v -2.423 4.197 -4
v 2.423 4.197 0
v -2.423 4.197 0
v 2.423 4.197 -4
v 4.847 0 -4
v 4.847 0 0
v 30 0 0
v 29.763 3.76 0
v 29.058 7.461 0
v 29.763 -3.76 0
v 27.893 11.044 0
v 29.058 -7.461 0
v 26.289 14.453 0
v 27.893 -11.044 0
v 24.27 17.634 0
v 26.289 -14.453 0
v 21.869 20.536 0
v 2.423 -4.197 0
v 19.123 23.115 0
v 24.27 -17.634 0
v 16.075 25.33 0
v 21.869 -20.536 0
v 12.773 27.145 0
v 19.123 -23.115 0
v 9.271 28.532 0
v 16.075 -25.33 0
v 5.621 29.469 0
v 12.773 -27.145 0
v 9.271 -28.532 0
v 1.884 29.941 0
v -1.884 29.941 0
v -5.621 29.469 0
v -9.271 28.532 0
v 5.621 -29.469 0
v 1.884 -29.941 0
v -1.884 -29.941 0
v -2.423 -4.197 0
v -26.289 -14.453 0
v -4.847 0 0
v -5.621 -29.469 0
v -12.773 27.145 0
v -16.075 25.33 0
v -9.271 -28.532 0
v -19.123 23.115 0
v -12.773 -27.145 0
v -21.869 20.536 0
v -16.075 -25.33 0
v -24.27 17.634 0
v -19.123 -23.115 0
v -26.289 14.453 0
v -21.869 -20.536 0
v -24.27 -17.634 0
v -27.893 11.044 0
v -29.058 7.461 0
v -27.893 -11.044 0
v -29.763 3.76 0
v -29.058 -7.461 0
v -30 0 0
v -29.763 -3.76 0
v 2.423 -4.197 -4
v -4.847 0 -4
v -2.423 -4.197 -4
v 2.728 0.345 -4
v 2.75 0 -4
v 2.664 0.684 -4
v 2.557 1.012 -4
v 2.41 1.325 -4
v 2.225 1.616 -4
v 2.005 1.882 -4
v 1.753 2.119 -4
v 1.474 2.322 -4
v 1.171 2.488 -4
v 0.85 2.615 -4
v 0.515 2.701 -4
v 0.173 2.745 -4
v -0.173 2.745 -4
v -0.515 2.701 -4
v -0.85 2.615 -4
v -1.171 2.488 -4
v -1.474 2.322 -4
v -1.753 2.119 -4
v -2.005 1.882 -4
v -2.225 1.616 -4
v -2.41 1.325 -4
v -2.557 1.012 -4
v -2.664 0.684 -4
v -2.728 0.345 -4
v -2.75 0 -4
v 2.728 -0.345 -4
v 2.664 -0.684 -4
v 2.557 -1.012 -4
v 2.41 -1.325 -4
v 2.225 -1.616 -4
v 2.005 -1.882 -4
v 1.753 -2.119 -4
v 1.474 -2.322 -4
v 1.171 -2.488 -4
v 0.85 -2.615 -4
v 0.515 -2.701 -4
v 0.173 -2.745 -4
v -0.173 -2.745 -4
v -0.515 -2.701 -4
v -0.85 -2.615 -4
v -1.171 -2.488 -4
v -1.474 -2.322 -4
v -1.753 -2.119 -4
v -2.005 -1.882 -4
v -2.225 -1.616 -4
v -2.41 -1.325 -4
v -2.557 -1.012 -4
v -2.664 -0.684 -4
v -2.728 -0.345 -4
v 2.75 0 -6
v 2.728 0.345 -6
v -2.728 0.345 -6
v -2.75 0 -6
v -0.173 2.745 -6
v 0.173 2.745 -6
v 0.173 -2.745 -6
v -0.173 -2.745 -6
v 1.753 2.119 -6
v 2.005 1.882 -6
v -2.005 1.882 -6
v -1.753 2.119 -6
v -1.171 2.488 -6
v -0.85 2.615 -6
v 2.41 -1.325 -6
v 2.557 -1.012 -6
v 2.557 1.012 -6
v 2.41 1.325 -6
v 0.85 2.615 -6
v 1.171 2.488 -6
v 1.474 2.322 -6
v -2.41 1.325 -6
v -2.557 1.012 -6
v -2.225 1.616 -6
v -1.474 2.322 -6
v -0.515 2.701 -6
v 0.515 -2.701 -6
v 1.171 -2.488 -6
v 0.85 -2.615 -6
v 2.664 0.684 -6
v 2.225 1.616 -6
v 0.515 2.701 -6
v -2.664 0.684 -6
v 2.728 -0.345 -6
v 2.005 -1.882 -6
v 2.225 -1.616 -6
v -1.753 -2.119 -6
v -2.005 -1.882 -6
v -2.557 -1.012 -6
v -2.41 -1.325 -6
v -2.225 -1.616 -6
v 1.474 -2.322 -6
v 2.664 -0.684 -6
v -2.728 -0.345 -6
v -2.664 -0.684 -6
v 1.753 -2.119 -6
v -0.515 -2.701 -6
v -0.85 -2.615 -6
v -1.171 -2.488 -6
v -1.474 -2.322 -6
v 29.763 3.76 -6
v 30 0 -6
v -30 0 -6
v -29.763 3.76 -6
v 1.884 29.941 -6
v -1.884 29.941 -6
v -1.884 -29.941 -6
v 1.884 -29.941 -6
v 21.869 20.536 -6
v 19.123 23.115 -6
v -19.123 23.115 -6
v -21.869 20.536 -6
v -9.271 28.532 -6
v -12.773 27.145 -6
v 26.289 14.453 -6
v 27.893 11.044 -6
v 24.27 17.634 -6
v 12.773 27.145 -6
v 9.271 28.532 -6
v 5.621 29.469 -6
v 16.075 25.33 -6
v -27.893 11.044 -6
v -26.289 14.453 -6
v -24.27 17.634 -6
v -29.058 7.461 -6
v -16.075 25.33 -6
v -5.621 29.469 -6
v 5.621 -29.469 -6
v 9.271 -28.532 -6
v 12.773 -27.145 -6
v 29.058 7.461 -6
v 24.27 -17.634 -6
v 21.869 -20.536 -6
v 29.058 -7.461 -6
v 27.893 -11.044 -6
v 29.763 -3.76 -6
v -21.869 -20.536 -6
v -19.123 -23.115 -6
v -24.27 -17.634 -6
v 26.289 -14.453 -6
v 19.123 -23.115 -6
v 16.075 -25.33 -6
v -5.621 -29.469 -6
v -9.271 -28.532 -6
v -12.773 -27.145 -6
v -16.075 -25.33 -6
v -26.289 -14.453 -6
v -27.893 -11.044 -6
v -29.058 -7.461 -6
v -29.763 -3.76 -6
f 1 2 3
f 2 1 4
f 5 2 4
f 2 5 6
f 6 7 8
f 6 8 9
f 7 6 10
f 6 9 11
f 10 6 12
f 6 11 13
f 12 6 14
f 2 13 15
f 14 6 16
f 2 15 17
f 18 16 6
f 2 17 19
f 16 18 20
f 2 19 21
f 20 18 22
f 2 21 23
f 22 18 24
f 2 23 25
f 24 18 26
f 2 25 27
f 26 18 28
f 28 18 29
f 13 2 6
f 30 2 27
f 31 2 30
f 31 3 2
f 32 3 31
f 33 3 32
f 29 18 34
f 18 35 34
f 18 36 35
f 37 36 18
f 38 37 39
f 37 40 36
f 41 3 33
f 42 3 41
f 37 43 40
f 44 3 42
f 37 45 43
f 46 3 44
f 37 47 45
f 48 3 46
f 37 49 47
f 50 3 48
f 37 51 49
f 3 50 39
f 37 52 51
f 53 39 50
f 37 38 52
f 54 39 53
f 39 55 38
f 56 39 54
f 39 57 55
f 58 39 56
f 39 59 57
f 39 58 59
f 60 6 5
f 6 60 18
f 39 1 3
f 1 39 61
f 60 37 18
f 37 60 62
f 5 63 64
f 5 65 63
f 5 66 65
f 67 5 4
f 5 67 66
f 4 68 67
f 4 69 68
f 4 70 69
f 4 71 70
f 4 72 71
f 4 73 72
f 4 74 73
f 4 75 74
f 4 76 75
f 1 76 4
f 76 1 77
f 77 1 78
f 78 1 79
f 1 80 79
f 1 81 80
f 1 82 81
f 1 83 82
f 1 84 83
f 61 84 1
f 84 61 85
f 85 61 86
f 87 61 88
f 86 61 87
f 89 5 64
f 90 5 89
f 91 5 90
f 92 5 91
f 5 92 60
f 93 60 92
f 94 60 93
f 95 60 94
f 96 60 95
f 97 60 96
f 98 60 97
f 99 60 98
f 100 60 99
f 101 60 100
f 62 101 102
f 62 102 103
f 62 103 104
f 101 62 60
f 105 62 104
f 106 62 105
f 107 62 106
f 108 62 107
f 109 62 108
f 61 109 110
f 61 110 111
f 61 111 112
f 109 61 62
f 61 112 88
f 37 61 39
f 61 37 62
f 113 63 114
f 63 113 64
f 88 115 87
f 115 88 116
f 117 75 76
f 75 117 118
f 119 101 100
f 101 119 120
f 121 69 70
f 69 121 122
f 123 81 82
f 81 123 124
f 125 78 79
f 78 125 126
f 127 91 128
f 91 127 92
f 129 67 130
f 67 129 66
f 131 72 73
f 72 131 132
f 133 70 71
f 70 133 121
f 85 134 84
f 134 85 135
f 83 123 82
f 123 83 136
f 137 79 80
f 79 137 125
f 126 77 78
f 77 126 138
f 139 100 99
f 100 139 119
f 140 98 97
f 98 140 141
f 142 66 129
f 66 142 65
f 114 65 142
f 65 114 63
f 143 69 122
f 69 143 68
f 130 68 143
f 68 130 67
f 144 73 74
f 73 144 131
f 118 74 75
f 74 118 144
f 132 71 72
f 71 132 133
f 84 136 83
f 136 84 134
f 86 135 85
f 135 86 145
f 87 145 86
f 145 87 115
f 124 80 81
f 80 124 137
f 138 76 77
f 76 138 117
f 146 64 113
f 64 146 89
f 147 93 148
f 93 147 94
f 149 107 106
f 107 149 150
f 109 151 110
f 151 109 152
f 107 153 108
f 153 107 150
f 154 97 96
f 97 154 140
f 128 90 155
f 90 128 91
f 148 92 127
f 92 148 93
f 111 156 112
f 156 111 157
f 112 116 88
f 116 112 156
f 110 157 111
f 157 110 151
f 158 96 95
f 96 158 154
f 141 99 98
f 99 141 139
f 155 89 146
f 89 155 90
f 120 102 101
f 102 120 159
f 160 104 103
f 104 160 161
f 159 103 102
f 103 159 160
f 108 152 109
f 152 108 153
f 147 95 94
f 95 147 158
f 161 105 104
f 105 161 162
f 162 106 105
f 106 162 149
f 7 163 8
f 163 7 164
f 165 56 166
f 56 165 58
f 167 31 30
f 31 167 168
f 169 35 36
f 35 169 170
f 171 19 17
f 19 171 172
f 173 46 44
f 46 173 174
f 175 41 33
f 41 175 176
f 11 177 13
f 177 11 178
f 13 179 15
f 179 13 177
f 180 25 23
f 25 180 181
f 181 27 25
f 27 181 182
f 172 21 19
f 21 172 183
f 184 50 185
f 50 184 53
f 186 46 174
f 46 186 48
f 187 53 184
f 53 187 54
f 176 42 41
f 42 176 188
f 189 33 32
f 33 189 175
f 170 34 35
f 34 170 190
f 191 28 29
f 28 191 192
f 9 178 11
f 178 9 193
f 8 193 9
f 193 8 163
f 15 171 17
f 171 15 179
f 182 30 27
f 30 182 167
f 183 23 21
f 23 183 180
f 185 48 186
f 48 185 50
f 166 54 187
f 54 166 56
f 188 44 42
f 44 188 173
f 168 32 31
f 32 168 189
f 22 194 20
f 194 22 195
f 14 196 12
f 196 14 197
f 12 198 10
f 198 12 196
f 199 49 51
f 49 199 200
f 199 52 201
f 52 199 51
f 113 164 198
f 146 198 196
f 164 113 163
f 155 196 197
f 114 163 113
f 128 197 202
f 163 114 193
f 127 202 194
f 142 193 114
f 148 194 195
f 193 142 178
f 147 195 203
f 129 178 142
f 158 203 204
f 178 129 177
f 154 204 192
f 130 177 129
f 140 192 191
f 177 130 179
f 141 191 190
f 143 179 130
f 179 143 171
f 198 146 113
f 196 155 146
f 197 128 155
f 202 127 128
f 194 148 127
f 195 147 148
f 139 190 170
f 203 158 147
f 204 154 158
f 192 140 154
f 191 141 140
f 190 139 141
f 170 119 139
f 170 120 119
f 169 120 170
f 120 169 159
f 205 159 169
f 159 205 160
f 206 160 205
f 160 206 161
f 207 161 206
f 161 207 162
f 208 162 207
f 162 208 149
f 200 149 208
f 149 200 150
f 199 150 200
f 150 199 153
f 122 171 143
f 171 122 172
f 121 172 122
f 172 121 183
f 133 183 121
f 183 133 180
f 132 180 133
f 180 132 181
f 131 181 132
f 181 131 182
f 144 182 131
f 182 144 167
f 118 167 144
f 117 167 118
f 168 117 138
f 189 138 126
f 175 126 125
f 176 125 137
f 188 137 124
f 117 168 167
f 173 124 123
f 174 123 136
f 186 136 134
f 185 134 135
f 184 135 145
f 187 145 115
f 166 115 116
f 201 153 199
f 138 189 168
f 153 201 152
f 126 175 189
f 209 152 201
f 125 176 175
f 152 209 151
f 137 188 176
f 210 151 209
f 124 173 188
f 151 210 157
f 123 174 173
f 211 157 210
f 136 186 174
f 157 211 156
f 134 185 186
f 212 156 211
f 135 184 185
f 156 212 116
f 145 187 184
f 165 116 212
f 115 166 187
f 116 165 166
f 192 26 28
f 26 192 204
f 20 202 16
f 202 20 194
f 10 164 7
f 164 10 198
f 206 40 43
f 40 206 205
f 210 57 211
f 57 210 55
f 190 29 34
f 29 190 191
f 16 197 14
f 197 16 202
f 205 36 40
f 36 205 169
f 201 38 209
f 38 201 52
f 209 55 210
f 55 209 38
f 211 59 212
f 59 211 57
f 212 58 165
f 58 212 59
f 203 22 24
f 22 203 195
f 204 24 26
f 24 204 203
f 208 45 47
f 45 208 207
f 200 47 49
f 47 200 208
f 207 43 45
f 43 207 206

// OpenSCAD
$fn = 50;


difference() {
	union() {
		translate(v = [0, 0, -6.0000000000]) {
			cylinder(h = 6.0000000000, r = 30.0000000000);
		}
	}
	union() {
		translate(v = [0, 0, 0]) {
			rotate(a = [0, 0, 0]) {
				difference() {
					union() {
						translate(v = [0, 0, -4]) {
							linear_extrude(height = 4) {
								polygon(points = [[4.8468000000, 0.0000000000], [2.4234000000, 4.1974519271], [-2.4234000000, 4.1974519271], [-4.8468000000, 0.0000000000], [-2.4234000000, -4.1974519271], [2.4234000000, -4.1974519271]]);
							}
						}
					}
					union();
				}
			}
		}
		#translate(v = [0, 0, -100.0000000000]) {
			cylinder(h = 200, r = 2.7500000000);
		}
	}
}
